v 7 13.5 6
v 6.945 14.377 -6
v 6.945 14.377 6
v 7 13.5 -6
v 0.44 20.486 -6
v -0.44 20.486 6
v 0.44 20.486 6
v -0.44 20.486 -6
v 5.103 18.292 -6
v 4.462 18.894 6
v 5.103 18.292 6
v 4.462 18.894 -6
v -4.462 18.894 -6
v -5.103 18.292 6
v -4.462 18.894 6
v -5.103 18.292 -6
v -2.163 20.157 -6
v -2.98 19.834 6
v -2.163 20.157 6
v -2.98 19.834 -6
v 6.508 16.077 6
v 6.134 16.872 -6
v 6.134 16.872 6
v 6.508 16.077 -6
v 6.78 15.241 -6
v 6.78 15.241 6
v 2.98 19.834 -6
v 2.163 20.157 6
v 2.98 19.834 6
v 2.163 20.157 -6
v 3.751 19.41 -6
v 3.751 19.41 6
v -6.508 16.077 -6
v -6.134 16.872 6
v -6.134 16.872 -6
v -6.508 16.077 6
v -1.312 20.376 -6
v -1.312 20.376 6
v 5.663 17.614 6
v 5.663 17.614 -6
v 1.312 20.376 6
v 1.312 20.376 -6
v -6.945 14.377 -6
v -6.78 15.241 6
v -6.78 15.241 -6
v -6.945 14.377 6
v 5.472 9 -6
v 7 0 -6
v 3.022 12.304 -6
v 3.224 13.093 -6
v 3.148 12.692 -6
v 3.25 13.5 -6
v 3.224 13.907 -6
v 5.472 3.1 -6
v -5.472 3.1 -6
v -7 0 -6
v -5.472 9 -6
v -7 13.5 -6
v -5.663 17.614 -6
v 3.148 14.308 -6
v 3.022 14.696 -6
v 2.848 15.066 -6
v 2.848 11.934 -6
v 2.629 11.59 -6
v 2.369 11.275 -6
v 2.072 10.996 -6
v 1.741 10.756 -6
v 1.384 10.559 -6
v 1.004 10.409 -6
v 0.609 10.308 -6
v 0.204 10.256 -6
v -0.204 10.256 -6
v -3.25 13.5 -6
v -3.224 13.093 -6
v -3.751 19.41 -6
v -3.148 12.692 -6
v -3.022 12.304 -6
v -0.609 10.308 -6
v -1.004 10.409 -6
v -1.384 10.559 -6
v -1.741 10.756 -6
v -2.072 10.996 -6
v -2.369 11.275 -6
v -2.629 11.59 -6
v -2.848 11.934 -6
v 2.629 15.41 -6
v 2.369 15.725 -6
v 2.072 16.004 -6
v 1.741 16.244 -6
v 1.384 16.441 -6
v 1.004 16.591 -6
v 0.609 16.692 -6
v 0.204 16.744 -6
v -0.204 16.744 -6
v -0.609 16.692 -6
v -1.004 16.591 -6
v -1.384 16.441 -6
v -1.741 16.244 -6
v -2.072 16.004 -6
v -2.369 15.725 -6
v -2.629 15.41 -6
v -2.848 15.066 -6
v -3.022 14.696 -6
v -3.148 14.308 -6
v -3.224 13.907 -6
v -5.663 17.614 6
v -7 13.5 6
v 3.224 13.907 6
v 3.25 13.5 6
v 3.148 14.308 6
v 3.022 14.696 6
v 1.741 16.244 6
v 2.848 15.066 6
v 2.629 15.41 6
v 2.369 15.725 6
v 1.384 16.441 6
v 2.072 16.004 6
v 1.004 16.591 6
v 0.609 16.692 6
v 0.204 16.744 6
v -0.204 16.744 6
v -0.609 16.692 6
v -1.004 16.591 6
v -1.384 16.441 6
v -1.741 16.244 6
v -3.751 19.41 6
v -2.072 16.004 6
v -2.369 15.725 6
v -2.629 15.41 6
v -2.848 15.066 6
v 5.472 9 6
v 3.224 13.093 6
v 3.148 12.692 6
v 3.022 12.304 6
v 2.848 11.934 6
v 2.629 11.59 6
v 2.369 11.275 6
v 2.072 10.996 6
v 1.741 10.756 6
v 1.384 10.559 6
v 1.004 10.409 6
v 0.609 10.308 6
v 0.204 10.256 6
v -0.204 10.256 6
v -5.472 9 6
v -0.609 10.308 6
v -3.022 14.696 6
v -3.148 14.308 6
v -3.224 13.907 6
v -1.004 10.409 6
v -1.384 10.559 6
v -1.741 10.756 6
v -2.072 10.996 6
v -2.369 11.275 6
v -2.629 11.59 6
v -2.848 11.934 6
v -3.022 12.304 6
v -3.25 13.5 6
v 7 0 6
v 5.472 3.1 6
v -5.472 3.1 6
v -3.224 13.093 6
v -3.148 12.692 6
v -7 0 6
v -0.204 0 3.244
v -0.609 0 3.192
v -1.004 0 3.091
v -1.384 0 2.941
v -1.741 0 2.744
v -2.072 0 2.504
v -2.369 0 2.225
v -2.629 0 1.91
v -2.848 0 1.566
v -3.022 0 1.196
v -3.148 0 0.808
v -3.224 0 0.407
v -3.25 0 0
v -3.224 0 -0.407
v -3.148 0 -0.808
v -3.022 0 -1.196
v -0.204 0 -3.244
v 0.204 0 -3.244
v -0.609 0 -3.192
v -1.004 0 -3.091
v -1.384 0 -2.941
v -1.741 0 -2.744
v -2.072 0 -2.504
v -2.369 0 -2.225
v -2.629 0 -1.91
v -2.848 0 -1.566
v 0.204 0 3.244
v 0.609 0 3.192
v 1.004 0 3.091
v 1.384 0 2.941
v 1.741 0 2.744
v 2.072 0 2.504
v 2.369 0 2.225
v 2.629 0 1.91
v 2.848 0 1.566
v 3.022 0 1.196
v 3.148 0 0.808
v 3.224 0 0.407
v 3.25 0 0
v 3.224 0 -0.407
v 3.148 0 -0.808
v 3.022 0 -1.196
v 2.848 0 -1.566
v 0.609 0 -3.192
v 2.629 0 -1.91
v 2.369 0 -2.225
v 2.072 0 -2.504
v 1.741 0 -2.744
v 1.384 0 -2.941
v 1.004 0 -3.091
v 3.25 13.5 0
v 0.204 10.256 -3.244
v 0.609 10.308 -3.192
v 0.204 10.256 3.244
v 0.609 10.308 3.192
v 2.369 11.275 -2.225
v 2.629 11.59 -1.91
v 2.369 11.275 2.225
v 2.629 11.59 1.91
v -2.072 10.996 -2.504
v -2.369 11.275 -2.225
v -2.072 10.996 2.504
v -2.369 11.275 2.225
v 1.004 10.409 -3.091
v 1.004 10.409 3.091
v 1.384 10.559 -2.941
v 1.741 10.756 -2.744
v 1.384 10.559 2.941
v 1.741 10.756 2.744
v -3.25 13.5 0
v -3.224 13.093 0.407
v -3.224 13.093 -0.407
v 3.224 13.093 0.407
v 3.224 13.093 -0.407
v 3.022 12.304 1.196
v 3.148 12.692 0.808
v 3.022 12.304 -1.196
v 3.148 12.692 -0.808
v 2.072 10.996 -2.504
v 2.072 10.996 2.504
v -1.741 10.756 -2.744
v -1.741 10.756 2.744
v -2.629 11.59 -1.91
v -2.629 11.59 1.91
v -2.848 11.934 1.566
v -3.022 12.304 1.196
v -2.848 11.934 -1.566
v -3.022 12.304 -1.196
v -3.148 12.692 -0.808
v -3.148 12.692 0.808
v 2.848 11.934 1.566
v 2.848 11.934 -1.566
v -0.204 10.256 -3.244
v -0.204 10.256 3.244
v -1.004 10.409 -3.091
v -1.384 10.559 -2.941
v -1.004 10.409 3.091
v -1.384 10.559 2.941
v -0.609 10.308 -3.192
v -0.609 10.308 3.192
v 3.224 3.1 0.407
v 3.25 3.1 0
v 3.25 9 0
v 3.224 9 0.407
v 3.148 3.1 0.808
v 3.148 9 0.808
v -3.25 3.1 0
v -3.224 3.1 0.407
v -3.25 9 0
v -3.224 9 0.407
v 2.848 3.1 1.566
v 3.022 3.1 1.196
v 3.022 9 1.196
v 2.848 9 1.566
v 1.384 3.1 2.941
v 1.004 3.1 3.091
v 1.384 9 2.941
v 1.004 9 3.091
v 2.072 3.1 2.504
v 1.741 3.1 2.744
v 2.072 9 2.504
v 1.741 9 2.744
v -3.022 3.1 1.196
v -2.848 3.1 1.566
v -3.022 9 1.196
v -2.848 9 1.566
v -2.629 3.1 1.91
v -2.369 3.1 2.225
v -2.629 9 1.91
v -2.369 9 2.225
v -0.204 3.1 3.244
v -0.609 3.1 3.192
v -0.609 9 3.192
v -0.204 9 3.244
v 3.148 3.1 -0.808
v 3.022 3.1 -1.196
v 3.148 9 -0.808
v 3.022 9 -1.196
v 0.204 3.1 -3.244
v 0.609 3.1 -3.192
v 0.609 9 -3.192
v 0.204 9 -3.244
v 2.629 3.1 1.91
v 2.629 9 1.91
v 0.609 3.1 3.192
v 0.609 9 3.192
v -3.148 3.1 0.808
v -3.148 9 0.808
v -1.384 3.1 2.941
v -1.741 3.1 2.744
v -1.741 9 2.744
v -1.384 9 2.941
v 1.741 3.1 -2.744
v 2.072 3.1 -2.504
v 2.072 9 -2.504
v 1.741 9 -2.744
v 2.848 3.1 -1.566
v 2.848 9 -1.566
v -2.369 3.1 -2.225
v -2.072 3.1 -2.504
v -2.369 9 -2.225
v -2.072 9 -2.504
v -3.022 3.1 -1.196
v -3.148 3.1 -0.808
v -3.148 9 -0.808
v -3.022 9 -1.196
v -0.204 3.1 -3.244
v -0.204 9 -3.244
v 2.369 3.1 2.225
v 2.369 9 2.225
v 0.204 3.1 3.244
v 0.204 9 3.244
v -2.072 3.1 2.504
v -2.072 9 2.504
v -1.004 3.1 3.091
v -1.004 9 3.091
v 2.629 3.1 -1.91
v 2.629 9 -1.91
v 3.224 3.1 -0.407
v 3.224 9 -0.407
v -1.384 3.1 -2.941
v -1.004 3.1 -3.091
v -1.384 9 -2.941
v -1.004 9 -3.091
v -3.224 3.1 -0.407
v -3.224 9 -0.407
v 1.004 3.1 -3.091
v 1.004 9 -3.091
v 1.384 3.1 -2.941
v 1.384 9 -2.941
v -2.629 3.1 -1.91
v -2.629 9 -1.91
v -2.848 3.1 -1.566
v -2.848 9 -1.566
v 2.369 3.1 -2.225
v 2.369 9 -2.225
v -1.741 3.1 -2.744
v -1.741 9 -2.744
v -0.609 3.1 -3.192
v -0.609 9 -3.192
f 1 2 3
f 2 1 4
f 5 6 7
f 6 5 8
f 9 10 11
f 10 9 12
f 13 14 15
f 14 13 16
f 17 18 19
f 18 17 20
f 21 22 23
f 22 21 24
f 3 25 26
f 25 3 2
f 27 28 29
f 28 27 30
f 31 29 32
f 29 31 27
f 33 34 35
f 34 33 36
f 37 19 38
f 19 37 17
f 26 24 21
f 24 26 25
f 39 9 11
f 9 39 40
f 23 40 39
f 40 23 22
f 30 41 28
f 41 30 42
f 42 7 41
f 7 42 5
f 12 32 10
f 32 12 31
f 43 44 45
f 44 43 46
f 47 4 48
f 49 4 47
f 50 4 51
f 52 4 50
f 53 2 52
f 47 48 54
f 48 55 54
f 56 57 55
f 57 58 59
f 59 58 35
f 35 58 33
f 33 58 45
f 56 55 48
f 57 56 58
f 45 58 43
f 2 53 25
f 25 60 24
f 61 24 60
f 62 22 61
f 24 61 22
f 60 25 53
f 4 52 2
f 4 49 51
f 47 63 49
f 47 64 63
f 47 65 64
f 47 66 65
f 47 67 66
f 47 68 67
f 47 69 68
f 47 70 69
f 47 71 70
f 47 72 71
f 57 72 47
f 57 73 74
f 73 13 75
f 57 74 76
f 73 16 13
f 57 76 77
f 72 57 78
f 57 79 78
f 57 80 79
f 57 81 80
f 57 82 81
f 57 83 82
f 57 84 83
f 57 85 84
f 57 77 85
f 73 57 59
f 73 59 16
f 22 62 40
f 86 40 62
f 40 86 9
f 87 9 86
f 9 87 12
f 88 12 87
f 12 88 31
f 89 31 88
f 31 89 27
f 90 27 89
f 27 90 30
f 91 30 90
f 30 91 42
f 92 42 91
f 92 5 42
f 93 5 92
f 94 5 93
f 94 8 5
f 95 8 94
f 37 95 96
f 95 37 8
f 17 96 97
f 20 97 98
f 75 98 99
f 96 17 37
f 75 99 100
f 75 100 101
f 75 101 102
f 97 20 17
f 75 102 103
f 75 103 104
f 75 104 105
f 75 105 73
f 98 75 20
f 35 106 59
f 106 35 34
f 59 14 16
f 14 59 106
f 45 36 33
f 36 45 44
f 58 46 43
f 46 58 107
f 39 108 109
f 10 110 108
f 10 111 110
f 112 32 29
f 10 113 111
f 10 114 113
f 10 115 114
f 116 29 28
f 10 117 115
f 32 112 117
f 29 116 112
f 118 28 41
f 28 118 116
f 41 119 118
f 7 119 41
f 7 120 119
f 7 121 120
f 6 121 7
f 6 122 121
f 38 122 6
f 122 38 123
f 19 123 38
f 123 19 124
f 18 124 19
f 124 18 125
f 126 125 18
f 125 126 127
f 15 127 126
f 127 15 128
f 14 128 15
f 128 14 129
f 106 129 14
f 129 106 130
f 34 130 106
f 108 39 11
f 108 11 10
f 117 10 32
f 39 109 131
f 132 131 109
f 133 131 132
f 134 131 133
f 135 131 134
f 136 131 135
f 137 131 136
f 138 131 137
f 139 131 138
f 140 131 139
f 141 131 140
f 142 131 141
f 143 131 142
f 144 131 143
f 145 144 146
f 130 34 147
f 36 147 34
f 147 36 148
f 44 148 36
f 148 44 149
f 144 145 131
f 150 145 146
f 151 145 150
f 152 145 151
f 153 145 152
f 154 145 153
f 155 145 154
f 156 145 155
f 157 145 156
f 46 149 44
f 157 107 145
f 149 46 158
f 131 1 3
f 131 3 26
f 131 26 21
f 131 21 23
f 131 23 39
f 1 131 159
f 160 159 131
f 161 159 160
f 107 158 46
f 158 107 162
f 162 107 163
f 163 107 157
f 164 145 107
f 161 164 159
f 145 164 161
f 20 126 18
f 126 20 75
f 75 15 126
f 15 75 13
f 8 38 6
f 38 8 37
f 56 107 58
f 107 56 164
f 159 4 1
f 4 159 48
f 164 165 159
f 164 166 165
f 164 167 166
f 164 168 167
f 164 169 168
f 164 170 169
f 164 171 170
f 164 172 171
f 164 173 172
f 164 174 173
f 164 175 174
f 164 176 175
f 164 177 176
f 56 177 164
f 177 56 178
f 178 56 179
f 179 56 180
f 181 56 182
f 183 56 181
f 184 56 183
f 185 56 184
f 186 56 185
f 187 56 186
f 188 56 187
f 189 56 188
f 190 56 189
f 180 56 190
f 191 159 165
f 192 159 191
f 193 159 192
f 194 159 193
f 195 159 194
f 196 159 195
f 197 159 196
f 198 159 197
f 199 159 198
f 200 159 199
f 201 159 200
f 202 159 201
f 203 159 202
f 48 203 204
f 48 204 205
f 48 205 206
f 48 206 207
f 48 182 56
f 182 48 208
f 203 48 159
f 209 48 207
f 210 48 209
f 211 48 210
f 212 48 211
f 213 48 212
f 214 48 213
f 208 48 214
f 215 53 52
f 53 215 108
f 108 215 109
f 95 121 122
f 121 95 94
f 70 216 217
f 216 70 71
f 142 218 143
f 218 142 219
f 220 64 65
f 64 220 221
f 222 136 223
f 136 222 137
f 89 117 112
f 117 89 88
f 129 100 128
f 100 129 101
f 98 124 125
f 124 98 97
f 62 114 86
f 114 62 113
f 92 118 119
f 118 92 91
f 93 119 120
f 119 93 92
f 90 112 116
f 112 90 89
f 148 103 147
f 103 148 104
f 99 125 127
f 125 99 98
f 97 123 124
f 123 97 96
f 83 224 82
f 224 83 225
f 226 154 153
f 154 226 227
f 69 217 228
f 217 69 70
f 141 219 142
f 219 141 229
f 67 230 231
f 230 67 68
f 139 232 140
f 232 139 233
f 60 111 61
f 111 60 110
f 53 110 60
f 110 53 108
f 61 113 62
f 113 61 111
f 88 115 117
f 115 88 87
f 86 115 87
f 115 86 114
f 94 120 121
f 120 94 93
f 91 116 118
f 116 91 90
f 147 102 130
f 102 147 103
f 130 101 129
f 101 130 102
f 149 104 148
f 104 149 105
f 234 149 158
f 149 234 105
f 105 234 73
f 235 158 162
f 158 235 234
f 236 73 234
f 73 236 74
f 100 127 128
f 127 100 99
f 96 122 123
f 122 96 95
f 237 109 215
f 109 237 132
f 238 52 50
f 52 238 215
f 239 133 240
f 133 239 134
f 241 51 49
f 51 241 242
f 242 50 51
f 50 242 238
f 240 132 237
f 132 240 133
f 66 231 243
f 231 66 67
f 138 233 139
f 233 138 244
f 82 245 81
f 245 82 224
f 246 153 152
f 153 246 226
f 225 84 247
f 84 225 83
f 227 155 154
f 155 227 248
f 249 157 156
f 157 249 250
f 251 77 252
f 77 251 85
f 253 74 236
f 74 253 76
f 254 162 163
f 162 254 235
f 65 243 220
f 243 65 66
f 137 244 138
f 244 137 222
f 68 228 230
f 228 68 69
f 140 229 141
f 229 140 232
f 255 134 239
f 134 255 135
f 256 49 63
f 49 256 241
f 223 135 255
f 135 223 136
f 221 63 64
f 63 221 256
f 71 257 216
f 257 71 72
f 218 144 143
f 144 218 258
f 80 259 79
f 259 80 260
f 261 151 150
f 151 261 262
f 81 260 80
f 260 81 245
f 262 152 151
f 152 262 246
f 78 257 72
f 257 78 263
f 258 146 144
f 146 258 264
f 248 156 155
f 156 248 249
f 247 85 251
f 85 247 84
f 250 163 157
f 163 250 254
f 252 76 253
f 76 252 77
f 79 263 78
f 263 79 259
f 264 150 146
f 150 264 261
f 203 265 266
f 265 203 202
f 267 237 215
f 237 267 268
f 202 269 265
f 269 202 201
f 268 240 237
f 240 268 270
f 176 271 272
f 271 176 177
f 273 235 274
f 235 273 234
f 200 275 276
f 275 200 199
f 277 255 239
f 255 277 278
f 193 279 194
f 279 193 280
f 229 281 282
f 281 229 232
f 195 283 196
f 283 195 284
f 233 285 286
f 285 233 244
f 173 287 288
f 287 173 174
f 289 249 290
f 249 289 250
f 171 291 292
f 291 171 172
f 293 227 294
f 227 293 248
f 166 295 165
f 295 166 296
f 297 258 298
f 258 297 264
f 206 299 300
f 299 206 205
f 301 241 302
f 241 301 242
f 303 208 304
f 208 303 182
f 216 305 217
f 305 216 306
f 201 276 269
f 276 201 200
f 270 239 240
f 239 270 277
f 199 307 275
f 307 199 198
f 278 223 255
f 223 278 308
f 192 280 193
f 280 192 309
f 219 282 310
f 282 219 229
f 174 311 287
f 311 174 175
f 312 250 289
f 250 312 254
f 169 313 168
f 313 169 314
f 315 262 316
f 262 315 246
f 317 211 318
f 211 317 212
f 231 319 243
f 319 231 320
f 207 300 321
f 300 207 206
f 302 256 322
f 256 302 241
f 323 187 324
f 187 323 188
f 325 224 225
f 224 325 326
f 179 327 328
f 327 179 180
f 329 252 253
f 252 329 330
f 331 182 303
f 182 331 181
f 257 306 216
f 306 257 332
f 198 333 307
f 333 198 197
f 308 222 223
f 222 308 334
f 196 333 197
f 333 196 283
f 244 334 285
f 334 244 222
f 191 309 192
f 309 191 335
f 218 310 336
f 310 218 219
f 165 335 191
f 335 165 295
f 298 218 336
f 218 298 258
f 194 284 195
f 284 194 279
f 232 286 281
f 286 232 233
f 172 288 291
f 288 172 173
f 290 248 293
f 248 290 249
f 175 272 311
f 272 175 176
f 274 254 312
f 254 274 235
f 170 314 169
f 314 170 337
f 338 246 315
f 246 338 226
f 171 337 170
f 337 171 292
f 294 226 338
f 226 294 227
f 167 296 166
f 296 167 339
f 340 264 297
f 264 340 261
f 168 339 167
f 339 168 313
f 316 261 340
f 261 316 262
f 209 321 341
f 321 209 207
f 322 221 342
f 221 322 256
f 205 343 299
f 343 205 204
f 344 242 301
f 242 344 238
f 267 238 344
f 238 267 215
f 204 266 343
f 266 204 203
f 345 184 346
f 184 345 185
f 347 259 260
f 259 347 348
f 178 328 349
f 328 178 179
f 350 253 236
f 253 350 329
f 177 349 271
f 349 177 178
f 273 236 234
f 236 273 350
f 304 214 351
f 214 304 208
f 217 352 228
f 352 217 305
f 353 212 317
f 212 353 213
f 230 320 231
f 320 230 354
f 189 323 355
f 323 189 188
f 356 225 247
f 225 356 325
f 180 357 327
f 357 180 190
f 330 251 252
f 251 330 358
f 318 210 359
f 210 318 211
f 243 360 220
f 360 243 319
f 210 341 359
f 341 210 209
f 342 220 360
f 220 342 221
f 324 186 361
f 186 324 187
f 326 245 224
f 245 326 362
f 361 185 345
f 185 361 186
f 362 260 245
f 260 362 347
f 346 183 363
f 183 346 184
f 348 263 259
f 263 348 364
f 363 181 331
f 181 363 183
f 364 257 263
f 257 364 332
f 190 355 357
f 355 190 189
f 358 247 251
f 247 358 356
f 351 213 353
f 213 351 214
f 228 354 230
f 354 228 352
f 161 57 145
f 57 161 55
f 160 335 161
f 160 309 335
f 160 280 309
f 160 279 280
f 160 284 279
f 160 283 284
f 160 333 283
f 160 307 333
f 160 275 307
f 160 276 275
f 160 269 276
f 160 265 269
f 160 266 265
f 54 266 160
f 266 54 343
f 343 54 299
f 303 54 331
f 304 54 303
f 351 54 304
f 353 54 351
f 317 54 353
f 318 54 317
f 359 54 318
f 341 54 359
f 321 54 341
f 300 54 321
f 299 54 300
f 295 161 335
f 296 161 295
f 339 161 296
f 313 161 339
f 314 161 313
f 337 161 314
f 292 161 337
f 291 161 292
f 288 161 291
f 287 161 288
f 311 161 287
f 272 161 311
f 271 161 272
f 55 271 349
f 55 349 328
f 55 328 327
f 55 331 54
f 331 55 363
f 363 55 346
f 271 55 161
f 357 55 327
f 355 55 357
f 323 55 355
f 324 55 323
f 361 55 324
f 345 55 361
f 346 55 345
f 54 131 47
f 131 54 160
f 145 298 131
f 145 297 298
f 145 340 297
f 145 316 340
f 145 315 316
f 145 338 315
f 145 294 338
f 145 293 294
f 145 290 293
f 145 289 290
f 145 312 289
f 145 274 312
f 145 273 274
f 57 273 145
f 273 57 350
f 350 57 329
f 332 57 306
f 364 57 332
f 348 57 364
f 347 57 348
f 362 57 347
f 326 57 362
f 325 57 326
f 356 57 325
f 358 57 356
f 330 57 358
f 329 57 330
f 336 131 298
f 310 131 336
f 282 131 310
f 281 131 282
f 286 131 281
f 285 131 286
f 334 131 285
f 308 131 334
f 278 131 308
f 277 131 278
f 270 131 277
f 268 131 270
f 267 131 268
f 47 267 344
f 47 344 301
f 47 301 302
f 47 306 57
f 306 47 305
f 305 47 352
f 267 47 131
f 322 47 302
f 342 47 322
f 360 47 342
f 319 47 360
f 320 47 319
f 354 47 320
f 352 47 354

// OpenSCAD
$fn = 50;


difference() {
	union() {
		translate(v = [0, 13.5000000000, -6.0000000000]) {
			rotate(a = [0, 0, 0]) {
				cylinder(h = 12, r = 7.0000000000);
			}
		}
		translate(v = [-7.0000000000, 0, -6.0000000000]) {
			rotate(a = [0, 0, 0]) {
				cube(size = [14, 13.5000000000, 12]);
			}
		}
	}
	union() {
		translate(v = [0.0000000000, 13.5000000000, -6.0000000000]) {
			rotate(a = [0, 0, 0]) {
				translate(v = [0, 0, -50]) {
					rotate(a = [0, 0, 0]) {
						cylinder(h = 100, r = 3.2500000000);
					}
				}
			}
		}
		translate(v = [0.0000000000, 13.5000000000, 0]) {
			rotate(a = [90, 0, 0]) {
				cylinder(h = 13.5000000000, r = 3.2500000000);
			}
		}
		translate(v = [-5.4716204506, 9, -25]) {
			rotate(a = [90, 0, 0]) {
				cube(size = [10.9432409012, 100, 5.9000000000]);
			}
		}
	}
}
